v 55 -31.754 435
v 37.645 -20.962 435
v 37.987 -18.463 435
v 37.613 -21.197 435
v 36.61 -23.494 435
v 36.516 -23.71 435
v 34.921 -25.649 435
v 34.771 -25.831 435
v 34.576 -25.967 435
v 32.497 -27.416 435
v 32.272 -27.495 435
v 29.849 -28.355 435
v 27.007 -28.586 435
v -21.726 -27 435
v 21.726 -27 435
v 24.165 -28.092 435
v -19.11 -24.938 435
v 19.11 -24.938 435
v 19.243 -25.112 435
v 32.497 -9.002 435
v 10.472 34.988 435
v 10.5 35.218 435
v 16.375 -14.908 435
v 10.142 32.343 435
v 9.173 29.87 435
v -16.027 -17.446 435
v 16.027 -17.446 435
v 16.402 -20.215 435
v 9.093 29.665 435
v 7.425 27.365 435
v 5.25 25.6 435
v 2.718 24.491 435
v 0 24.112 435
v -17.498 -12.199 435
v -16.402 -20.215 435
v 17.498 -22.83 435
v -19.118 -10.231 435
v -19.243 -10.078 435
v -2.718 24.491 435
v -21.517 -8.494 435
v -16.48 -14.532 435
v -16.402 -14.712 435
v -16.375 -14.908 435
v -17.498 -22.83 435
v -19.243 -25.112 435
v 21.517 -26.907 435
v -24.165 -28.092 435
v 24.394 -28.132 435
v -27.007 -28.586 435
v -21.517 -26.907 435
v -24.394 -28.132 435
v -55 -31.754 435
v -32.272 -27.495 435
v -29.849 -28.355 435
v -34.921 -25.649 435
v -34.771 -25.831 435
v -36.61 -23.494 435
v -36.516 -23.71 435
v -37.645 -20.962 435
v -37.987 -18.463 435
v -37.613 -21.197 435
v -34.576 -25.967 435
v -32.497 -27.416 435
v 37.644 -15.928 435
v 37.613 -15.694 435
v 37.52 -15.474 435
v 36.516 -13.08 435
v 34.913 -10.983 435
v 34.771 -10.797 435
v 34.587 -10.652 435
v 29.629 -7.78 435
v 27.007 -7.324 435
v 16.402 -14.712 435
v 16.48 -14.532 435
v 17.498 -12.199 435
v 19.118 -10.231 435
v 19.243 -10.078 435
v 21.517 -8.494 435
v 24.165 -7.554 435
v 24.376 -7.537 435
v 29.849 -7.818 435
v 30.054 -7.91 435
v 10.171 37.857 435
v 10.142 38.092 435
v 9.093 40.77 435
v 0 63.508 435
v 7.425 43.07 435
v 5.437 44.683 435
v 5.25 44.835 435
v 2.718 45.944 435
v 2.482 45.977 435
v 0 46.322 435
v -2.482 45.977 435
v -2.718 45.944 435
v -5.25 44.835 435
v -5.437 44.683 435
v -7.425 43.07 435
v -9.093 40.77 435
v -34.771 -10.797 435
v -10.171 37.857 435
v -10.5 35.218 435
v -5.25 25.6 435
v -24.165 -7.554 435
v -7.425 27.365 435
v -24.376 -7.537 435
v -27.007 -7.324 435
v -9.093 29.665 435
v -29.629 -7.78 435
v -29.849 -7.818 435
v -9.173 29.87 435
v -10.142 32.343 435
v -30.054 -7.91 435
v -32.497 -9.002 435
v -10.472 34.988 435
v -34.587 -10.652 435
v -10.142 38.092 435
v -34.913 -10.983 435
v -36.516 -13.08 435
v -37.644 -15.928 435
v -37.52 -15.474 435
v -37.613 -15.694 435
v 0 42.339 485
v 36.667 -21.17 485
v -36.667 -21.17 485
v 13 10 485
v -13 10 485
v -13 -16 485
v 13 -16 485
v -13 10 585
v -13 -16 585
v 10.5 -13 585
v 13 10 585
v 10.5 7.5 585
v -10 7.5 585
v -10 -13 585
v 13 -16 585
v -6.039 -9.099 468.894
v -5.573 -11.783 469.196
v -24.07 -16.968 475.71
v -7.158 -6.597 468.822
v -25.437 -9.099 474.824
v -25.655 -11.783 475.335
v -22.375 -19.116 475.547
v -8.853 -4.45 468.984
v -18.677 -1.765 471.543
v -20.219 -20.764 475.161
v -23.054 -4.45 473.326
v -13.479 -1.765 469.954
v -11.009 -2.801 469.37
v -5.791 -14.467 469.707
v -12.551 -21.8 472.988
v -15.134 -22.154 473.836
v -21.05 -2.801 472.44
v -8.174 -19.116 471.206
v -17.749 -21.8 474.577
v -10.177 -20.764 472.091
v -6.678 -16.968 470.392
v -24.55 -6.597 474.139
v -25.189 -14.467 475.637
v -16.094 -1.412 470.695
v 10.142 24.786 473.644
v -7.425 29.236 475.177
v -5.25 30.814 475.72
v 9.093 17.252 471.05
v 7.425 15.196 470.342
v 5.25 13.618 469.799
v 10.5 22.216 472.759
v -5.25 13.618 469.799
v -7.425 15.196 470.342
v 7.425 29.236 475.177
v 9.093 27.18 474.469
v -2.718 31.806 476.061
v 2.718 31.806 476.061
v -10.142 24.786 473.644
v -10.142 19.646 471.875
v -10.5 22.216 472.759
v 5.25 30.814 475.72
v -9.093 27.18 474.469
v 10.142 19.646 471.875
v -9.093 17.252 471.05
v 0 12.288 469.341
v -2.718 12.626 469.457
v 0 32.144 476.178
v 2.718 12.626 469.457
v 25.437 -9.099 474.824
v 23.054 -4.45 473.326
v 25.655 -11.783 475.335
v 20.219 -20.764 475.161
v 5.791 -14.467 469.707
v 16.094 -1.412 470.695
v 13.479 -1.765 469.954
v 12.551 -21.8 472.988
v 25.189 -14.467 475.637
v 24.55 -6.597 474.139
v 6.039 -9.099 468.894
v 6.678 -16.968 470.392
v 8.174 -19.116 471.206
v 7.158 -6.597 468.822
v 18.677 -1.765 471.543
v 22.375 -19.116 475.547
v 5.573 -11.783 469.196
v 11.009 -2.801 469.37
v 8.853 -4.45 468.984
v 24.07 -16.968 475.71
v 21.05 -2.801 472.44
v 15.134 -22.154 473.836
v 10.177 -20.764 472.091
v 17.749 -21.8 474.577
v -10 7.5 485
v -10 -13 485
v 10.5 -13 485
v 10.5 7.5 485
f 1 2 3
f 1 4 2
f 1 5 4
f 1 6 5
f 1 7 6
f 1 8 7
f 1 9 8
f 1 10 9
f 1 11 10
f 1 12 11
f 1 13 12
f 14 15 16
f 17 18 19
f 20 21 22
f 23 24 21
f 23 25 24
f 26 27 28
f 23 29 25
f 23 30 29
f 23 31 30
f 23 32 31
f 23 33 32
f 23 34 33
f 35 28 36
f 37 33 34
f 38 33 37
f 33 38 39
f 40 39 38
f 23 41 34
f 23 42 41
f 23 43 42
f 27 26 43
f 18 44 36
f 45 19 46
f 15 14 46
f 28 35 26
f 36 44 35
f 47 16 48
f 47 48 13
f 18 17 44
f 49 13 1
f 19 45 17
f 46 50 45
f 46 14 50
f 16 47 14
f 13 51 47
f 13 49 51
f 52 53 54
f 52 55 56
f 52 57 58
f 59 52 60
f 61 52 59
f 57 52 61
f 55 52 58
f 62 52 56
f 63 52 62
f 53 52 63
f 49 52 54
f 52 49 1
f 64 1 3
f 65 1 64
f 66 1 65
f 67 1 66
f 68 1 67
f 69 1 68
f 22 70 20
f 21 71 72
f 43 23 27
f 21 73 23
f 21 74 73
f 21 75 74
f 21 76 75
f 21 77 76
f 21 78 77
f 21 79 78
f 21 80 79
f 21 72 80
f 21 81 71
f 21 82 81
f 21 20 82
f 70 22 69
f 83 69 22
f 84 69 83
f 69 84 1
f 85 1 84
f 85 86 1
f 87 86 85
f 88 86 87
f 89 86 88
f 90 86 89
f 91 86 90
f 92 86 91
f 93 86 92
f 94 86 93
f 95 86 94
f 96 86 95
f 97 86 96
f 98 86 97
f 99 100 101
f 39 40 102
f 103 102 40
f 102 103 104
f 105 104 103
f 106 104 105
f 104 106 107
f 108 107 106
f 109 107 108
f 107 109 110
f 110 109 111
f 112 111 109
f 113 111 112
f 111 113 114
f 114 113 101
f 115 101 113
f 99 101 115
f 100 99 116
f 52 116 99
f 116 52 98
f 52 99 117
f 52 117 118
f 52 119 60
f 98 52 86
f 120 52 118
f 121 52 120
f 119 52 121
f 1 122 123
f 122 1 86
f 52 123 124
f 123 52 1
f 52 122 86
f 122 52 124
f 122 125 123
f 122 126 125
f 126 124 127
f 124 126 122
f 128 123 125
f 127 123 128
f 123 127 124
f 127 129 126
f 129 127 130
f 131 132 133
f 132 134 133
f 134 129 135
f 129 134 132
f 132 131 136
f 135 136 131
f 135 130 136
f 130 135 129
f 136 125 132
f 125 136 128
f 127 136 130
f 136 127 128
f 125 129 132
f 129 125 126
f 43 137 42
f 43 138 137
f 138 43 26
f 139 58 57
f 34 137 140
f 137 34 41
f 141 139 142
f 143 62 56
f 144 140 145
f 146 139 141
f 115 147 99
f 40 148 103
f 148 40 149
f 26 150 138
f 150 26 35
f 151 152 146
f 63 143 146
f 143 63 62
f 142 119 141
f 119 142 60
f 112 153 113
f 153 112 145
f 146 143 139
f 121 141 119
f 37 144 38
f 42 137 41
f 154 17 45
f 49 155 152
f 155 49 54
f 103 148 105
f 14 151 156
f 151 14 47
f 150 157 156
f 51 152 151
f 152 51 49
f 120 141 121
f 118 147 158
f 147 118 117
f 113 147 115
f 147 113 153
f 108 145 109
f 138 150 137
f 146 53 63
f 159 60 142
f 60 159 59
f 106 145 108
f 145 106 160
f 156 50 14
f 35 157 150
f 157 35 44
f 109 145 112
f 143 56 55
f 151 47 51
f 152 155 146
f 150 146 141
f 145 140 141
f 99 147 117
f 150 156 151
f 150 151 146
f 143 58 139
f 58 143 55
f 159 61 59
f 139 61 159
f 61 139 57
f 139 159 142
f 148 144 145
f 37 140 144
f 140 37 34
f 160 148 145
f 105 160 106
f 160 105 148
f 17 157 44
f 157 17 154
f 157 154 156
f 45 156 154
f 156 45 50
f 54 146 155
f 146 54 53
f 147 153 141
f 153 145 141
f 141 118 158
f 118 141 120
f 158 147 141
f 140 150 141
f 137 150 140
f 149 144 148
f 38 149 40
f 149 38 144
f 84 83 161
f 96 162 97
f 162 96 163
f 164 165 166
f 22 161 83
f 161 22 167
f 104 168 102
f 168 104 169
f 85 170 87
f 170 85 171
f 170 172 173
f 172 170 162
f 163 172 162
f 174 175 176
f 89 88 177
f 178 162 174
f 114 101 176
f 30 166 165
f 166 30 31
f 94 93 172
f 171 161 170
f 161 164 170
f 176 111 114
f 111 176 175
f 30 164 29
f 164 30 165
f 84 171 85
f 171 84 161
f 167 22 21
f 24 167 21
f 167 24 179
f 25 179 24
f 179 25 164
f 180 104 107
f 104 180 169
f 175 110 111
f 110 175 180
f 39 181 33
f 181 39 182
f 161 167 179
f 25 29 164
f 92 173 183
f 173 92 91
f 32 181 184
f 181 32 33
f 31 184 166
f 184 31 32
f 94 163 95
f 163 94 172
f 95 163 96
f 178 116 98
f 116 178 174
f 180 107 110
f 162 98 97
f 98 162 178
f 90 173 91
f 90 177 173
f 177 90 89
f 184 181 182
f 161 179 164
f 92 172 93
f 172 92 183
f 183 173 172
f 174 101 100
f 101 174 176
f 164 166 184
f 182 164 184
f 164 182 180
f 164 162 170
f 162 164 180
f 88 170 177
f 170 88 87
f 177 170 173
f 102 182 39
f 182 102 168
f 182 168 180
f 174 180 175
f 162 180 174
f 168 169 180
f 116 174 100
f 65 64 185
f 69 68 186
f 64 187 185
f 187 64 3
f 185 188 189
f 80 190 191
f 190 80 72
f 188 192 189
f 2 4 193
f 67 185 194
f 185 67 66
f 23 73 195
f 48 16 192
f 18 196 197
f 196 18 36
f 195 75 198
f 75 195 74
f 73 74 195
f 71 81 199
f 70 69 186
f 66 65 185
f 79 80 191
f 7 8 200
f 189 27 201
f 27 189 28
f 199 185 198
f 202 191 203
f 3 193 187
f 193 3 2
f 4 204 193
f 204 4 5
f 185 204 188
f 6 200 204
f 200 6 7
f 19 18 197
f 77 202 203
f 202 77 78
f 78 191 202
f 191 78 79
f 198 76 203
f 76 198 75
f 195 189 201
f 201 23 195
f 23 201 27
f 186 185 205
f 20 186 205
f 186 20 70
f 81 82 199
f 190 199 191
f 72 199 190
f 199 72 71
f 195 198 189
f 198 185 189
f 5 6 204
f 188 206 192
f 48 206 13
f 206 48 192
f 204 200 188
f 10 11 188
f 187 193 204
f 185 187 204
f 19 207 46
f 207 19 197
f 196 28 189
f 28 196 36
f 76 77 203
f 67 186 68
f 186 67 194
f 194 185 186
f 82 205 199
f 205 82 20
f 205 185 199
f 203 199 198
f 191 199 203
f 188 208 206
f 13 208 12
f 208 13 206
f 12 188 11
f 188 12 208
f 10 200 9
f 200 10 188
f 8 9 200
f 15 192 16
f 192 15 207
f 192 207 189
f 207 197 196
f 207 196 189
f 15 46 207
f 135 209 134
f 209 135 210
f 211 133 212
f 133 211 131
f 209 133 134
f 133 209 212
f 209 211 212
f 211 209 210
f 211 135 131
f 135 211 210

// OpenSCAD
raio_tubo = 10.5;
comprimento_pe = 500;
angulo_pe = 12;



difference() {
    bloco();
    
    tripes();
    
    translate([-10,-13,485])
    cube([20.5,20.5,200]);
}

module bloco() 
{
    color([1,0,0,0.5])    
    difference() {        
        translate([0,0,435])
        pyramid(side=110, height=150);
        
        translate([-200,-200,485])
        cube([400,400,300]);
    }   
    
    color([1,0,0,0.5])    
    translate([0,-3,535])
    cube([26,26,100], true);
}
    

module tripes() 
{
    translate([-160,-90,0])
    rotate([-9,17,0])
    cylinder(r1=raio_tubo, r2=raio_tubo, h=comprimento_pe, $fn=24);

    translate([0,185,0])
    rotate([19,0,0])
    cylinder(r1=raio_tubo, r2=raio_tubo, h=comprimento_pe, $fn=24);

    translate([160,-90,0])
    rotate([-9,-17,0])
    cylinder(r1=raio_tubo, r2=raio_tubo, h=comprimento_pe, $fn=24);

//translate([-comprimento_pe * cos(angulo_pe),0,0])
//rotate([0,angulo_pe,0])
//cylinder(r1=raio_tubo, r2=raio_tubo, h=600, $fn=700);
    
}
    
module pyramid(side=10, height=-1, square=false, centerHorizontal=true, centerVertical=false)
{
// creates a 3 or 4 sided pyramid.  -1 height= tetrahedron or Johnson's Solid square pyramid
	mHeight= height!=-1 ? height:
		square == true ? (1/sqrt(2))*side:		//square
			sqrt(6)/3*side;						//tetra
	vert= centerVertical!=true ? [0,0,0]:
		square==false ? [0,0,-mHeight/4] :	 //inscribes a tetra inside a sphere, not 1/2 ht
			[0,0,-mHeight/2];	//for squares, center=false inscribes, so true is just 1/2 ht
	horiz= centerHorizontal!= true ? [0,0,0] :
		square == true ? [-side/2, -side/2, 0] : 	//square
			[-side/2,-sqrt(3)*side/6 ,0];			//tetra
	translate(vert+horiz){
		if (square == true){
			polyhedron (	points = [[0,0,0],[0,side,0],[side,side,0],
								[side,0,0],[side/2,side/2,mHeight]], 
						triangles = [[1,0,2], [2,0,3], [0,4,3], 
								[3,4,2], [2,4,1], [1,4,0]]);
		}
		if (square != true){
			polyhedron (	points = [[0,0,0],[side,0,0],[side/2,sqrt(3)*side/2,0],
								[side/2,sqrt(3)*side/6,mHeight]], 
						triangles = [[0,1,2], [1,0,3], [2,1,3],[2,3,0]]);			
		}
    }	
}
